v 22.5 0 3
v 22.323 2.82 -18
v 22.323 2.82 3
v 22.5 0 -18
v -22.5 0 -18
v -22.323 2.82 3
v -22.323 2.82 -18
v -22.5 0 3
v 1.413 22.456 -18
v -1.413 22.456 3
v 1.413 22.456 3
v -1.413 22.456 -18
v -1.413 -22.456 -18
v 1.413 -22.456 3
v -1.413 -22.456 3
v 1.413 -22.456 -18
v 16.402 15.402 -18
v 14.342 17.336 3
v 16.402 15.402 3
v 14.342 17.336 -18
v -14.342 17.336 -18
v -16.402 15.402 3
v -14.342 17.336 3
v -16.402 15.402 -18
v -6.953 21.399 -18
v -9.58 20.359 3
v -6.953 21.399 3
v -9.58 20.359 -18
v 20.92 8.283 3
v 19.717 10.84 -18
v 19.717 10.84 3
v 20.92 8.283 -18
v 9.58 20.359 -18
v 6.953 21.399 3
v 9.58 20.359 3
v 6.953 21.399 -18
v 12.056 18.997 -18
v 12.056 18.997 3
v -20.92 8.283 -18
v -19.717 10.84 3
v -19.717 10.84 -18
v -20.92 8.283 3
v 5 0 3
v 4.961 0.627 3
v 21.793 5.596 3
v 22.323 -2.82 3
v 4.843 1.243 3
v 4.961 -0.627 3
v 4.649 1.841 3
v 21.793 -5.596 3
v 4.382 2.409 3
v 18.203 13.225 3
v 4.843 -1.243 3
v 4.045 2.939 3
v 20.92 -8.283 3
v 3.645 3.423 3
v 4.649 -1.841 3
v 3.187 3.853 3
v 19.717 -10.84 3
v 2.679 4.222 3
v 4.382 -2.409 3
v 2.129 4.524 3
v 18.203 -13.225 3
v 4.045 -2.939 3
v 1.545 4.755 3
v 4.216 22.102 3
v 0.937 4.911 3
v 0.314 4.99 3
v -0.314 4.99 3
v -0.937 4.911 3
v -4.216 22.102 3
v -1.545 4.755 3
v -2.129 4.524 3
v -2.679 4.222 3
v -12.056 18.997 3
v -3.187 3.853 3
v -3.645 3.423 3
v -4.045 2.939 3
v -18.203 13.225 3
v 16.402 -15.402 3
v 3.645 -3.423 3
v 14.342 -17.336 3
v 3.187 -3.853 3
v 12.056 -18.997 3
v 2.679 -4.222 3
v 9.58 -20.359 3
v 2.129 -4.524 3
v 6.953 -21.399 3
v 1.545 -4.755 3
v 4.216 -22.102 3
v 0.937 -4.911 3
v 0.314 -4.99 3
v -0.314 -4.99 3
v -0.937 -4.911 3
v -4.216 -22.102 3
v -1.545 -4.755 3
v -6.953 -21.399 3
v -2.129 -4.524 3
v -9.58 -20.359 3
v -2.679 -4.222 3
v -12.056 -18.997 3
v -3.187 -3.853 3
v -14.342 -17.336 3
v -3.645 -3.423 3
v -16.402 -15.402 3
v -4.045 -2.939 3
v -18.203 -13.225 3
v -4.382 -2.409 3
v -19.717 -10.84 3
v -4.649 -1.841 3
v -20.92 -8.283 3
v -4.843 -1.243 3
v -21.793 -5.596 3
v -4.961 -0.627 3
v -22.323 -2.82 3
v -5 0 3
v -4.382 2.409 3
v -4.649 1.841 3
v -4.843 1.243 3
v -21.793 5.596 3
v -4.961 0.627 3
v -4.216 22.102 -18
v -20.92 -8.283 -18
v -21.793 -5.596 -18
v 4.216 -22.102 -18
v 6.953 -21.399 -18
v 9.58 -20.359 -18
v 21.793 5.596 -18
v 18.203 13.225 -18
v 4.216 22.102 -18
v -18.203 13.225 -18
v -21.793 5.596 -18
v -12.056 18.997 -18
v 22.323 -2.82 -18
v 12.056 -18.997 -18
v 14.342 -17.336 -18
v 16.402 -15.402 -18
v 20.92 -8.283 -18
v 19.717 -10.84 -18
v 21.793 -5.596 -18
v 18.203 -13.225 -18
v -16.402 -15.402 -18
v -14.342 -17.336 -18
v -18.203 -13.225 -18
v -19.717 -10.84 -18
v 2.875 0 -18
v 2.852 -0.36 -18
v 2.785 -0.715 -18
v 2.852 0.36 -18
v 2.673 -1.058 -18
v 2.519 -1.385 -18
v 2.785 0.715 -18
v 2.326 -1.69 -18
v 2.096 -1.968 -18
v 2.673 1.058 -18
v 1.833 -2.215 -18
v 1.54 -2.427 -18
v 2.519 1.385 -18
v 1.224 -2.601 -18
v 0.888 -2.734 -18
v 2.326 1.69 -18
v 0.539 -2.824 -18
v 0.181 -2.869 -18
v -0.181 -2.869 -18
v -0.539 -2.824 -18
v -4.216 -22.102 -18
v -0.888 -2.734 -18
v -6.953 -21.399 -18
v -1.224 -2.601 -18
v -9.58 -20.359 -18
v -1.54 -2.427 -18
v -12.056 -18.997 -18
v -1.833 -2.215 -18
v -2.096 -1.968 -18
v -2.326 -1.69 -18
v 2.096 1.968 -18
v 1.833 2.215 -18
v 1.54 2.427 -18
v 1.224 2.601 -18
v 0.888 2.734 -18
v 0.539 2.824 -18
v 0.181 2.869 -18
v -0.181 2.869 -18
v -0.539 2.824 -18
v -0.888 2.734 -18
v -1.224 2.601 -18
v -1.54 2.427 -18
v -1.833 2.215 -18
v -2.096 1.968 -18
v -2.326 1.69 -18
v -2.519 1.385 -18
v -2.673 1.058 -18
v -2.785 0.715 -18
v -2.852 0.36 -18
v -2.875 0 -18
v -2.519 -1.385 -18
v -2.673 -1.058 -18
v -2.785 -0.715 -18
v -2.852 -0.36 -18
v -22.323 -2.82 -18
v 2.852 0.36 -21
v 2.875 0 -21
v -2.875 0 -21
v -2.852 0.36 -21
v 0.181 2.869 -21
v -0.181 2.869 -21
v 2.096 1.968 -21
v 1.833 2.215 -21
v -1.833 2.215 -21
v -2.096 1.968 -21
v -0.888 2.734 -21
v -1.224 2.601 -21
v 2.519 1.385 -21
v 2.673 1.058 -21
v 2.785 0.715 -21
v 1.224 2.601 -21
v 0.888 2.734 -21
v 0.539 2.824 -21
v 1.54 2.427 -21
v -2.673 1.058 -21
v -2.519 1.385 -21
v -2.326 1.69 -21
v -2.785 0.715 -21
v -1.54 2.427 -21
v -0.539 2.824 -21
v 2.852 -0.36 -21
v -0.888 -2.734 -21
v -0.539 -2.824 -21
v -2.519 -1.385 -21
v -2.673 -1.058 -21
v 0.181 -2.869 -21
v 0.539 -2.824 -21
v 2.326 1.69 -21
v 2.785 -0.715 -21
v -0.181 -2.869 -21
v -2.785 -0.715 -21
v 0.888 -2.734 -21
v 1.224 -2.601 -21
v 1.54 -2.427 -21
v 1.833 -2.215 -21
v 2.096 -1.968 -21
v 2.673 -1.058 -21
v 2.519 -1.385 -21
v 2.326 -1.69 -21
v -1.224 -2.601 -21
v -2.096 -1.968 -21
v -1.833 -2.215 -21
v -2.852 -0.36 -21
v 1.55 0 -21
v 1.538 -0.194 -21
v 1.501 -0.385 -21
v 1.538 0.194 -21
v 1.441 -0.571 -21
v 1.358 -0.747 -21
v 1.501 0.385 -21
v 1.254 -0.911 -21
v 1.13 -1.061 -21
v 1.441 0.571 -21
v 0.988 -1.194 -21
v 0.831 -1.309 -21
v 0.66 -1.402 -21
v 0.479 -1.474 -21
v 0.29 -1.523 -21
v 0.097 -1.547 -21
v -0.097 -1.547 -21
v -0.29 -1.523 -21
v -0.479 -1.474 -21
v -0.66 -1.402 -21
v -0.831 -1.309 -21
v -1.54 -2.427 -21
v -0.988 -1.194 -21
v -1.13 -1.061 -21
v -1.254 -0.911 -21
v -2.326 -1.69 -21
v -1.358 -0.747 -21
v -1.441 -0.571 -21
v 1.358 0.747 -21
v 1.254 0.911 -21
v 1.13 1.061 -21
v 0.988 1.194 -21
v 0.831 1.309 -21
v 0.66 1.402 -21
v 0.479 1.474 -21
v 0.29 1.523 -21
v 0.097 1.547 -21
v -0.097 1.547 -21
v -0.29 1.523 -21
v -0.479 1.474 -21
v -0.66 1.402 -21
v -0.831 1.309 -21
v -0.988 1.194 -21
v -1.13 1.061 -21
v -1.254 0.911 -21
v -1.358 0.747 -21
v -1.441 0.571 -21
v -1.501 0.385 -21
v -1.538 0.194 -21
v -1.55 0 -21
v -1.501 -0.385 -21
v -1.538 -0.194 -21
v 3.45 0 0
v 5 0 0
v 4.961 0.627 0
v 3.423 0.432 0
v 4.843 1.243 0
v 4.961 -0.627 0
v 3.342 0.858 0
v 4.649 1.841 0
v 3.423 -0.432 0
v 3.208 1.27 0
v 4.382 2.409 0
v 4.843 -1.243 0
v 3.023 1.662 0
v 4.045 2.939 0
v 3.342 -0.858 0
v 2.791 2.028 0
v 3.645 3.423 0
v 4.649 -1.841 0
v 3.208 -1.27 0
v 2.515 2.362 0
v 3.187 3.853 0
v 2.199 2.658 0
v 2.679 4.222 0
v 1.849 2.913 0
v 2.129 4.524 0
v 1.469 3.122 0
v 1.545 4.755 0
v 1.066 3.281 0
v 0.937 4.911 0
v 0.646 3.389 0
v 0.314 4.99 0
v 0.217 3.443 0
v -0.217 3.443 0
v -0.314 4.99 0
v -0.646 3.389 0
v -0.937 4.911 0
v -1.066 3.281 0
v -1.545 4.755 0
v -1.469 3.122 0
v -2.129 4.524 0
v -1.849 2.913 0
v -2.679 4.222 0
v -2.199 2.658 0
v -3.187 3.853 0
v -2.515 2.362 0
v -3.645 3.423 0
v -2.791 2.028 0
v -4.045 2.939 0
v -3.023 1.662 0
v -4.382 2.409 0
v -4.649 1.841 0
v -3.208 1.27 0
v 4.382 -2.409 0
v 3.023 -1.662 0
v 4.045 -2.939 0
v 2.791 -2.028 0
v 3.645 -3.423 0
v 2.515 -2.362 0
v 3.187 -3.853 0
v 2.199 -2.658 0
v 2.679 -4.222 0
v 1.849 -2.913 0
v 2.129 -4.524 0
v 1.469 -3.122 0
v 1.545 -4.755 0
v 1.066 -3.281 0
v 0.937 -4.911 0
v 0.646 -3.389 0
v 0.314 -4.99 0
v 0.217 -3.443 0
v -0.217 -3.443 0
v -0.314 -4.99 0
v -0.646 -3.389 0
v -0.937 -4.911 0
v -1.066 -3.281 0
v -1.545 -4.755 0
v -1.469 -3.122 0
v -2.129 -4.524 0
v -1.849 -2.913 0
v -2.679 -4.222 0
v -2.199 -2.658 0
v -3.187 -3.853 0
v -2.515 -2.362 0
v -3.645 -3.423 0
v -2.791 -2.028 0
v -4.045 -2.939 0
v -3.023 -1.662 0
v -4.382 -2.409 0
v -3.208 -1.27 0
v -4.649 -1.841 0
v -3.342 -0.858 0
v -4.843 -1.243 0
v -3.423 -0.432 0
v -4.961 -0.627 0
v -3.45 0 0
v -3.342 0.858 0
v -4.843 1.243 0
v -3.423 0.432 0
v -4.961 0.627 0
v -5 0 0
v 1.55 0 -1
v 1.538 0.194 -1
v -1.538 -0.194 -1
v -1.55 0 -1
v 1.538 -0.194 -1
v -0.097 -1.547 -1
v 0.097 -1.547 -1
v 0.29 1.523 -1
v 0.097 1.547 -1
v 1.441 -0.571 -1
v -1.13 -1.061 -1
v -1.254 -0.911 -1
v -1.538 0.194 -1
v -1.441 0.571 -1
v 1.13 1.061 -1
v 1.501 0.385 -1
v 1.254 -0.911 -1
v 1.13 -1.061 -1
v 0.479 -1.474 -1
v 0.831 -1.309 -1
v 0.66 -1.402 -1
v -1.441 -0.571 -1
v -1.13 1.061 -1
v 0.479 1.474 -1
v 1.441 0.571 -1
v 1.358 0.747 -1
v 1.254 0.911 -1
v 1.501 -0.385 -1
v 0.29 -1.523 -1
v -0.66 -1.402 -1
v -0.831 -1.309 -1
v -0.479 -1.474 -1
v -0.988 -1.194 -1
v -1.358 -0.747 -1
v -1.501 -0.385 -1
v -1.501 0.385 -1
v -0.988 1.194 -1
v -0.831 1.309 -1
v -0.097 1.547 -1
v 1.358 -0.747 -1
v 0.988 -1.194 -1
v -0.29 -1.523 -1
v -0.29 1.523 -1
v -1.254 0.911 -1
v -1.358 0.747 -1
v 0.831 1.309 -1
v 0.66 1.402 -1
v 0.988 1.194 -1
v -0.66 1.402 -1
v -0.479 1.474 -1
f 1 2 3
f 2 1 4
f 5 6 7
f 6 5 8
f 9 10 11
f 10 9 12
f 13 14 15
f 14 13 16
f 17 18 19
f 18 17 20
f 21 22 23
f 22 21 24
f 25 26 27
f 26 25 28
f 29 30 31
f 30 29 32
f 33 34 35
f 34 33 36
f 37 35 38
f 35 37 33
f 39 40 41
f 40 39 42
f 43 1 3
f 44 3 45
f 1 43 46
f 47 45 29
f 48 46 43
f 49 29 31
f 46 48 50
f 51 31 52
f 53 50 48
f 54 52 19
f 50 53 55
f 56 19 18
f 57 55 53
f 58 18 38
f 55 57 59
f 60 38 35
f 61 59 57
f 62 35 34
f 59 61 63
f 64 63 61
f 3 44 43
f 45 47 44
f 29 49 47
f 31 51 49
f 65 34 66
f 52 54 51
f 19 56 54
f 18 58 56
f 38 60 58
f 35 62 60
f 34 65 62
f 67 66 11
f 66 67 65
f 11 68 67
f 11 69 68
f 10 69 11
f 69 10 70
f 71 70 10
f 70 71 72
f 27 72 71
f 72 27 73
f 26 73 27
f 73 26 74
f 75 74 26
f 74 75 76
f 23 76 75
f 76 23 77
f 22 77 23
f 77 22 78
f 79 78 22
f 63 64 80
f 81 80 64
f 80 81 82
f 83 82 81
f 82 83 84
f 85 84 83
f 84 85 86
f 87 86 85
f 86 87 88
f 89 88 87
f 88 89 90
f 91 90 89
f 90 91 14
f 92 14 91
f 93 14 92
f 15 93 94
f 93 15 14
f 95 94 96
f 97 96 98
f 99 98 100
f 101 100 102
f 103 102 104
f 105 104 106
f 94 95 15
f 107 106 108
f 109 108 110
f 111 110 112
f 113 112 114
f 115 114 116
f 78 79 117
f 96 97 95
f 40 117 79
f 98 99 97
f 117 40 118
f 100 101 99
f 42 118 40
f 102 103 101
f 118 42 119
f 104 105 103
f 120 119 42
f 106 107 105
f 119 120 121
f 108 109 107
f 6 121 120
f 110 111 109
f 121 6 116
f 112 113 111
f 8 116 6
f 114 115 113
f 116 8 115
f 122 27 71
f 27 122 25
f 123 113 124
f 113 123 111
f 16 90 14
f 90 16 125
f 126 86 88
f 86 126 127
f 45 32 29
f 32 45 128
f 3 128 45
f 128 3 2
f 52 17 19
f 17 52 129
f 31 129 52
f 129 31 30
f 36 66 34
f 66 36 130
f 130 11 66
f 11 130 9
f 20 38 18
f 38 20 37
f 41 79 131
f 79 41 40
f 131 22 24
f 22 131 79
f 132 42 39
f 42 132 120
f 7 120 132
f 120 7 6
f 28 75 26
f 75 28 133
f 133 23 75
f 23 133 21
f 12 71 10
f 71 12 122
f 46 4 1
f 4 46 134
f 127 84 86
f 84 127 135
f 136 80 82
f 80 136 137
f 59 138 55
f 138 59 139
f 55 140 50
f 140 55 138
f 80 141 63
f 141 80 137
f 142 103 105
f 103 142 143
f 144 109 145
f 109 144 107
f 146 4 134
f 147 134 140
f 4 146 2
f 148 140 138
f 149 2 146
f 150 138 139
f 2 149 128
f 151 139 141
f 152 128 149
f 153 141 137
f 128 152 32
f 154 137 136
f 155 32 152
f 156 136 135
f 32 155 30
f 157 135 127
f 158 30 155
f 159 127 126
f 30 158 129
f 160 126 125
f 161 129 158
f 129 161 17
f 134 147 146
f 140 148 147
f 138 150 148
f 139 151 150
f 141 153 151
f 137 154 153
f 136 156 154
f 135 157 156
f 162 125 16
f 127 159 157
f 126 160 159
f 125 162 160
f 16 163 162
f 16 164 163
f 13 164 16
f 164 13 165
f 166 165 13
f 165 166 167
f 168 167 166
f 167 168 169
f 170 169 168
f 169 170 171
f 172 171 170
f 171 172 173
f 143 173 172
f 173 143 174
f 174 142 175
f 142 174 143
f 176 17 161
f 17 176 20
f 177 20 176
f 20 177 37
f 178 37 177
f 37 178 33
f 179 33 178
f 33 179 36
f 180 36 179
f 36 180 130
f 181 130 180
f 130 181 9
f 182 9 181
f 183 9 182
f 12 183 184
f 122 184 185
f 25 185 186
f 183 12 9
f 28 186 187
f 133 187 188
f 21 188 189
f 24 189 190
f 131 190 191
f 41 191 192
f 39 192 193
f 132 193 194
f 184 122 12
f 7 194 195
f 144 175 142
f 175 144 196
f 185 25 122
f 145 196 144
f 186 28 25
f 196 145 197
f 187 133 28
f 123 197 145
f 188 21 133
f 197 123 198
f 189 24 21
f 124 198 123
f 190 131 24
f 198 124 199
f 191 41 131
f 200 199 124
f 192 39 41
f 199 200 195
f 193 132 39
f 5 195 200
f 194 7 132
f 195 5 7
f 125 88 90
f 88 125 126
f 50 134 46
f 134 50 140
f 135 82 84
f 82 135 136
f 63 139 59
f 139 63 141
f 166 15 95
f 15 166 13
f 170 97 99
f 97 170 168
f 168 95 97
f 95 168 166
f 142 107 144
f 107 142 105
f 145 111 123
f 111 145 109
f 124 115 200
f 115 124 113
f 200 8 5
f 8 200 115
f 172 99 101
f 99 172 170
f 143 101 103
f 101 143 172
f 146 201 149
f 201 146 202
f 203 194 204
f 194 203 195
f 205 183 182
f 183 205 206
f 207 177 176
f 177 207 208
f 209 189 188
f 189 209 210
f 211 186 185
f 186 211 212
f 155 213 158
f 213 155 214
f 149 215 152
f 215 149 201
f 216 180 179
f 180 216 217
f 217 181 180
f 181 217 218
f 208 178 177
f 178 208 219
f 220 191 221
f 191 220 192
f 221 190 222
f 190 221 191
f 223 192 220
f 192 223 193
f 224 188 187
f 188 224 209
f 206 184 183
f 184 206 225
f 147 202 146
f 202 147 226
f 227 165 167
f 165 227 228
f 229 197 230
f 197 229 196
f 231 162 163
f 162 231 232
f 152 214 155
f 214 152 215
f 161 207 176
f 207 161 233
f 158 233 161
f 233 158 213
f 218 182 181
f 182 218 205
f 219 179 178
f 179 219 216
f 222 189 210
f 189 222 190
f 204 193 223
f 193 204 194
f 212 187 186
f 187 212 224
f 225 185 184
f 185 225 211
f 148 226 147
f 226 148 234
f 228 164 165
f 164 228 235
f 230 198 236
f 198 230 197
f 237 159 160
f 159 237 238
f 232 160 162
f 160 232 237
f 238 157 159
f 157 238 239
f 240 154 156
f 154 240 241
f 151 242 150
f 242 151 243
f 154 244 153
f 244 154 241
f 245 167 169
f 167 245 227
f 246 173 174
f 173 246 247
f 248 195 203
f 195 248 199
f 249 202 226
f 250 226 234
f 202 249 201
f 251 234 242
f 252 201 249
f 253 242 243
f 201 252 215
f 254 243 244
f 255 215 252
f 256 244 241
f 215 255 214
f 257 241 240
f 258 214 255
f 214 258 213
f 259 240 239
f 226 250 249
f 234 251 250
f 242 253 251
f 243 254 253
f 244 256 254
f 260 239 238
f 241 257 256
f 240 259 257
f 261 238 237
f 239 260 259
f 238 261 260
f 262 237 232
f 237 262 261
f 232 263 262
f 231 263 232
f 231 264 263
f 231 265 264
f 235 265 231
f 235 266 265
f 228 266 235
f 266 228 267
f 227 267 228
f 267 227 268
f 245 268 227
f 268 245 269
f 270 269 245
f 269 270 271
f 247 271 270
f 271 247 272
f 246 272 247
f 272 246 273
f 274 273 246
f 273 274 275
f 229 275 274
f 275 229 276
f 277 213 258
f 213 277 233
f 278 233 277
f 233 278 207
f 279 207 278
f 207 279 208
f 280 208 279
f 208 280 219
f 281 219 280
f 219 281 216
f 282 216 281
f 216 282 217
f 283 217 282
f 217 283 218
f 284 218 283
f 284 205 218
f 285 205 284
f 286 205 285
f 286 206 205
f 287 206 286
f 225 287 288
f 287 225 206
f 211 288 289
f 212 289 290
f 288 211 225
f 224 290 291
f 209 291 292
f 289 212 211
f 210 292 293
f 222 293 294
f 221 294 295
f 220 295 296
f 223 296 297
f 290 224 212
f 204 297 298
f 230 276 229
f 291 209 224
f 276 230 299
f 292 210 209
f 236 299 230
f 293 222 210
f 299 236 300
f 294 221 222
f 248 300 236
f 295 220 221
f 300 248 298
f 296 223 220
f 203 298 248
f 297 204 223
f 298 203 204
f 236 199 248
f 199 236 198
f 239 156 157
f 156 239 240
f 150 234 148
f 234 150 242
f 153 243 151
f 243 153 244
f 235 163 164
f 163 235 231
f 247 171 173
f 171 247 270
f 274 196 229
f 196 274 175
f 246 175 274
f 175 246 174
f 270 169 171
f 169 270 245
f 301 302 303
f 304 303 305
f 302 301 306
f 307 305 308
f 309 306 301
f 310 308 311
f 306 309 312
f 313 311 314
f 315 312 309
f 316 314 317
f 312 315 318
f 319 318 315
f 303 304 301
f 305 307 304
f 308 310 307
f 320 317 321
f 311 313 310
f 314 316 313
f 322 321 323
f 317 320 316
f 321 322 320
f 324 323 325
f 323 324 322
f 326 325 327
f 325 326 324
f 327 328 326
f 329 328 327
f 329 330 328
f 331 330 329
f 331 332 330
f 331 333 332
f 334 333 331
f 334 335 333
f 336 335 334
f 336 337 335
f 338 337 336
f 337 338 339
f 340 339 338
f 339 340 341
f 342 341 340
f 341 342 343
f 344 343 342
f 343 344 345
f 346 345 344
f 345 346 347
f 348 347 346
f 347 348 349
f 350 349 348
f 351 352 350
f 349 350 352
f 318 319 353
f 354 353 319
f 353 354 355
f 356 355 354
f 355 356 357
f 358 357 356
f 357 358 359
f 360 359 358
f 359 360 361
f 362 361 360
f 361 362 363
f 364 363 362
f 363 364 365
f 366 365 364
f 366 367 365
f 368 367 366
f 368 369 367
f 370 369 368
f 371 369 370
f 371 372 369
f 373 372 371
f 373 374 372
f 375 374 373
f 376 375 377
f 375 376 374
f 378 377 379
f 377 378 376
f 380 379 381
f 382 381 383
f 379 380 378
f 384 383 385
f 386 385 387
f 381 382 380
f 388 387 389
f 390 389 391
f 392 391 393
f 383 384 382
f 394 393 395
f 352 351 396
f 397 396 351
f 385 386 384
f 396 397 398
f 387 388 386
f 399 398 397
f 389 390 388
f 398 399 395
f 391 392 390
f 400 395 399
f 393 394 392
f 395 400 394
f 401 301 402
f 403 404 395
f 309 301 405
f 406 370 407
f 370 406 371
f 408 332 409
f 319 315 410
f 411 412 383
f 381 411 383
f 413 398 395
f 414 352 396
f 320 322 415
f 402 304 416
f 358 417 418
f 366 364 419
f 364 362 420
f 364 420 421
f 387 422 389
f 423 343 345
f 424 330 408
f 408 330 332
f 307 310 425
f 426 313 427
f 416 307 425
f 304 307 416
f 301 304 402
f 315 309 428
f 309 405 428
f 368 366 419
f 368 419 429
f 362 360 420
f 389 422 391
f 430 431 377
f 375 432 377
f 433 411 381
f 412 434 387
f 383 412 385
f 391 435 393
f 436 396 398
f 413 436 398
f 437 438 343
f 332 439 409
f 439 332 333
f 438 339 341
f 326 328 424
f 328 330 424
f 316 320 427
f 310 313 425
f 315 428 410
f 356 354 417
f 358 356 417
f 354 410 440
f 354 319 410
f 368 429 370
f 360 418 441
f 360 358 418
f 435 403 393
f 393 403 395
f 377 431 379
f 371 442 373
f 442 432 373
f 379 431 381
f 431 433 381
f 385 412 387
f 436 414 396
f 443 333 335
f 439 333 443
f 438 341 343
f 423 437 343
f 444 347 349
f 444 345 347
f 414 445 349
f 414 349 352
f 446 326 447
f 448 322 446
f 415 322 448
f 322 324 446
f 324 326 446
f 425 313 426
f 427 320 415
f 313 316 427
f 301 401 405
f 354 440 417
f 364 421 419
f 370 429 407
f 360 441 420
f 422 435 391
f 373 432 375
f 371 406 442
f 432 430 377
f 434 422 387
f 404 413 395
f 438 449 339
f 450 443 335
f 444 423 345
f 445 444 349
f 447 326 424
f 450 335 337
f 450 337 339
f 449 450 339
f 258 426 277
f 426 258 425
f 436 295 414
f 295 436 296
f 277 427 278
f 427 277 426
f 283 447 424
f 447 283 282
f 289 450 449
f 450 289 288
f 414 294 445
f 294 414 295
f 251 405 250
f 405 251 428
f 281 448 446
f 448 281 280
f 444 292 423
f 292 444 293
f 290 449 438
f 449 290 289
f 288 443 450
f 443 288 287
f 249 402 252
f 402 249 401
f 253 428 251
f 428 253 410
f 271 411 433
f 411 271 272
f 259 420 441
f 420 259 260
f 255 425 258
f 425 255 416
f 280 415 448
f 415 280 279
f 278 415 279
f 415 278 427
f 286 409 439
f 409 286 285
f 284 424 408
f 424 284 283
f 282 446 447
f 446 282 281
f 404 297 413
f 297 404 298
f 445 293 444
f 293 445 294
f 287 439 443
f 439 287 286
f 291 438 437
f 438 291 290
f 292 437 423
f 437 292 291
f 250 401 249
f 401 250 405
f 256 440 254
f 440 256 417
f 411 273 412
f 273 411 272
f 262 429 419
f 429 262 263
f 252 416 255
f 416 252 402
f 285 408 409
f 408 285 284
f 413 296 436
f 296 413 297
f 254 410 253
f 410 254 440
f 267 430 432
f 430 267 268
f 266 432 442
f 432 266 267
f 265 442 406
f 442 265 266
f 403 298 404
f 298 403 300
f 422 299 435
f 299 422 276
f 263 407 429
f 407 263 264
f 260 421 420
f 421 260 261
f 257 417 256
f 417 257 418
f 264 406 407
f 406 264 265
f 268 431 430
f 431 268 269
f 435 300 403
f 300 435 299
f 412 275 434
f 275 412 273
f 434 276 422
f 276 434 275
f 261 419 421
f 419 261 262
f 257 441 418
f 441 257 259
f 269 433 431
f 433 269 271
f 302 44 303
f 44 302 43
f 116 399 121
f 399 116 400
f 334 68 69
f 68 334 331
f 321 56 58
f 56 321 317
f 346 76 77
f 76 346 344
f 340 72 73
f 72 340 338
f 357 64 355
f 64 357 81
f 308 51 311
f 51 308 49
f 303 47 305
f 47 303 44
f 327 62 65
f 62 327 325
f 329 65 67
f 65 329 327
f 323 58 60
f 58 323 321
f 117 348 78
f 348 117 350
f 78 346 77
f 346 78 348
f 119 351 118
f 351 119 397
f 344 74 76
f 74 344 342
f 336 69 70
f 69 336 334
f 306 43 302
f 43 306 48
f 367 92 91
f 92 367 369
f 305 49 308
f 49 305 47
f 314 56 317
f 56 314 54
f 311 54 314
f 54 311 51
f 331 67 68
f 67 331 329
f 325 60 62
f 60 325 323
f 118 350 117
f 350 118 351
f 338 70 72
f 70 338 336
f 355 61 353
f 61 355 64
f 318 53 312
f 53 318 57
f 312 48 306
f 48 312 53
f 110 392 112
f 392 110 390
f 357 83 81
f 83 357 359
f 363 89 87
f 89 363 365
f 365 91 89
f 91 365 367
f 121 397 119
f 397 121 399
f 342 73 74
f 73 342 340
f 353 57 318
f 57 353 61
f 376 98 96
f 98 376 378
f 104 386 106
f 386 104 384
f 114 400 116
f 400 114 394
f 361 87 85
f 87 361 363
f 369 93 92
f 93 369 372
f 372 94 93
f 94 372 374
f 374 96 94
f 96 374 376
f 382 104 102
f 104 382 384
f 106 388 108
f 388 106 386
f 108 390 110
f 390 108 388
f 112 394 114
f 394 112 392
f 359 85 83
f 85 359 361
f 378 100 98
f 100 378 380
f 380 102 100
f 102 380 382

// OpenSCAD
$fn = 50;

difference() {
	union() {
		translate(v = [0, 0, -18.0]) {
			cylinder(h = 21, r = 22.5);
		}
		#translate(v = [0, 0, -21.0]) {
			cylinder(h = 21, r = 2.875);
		}
	}
	union() {
		translate(v = [0, 0, 0]) {
			rotate(a = [0, 0, 0]) {
				difference() {
					union() {
						translate(v = [0, 0, -21.0]) {
							cylinder(h = 21, r = 1.25);
						}
						translate(v = [0, 0, -1.0]) {
							cylinder(h = 1.0, r1 = 1.55, r2 = 3.45);
						}
						translate(v = [0, 0, -21.0]) {
							cylinder(h = 21, r = 1.55);
						}
						translate(v = [0, 0, -21.0]) {
							cylinder(h = 21, r = 1.25);
						}
					}
					union();
				}
			}
		}
		#cylinder(h = 3, r = 5.0);
	}
}
